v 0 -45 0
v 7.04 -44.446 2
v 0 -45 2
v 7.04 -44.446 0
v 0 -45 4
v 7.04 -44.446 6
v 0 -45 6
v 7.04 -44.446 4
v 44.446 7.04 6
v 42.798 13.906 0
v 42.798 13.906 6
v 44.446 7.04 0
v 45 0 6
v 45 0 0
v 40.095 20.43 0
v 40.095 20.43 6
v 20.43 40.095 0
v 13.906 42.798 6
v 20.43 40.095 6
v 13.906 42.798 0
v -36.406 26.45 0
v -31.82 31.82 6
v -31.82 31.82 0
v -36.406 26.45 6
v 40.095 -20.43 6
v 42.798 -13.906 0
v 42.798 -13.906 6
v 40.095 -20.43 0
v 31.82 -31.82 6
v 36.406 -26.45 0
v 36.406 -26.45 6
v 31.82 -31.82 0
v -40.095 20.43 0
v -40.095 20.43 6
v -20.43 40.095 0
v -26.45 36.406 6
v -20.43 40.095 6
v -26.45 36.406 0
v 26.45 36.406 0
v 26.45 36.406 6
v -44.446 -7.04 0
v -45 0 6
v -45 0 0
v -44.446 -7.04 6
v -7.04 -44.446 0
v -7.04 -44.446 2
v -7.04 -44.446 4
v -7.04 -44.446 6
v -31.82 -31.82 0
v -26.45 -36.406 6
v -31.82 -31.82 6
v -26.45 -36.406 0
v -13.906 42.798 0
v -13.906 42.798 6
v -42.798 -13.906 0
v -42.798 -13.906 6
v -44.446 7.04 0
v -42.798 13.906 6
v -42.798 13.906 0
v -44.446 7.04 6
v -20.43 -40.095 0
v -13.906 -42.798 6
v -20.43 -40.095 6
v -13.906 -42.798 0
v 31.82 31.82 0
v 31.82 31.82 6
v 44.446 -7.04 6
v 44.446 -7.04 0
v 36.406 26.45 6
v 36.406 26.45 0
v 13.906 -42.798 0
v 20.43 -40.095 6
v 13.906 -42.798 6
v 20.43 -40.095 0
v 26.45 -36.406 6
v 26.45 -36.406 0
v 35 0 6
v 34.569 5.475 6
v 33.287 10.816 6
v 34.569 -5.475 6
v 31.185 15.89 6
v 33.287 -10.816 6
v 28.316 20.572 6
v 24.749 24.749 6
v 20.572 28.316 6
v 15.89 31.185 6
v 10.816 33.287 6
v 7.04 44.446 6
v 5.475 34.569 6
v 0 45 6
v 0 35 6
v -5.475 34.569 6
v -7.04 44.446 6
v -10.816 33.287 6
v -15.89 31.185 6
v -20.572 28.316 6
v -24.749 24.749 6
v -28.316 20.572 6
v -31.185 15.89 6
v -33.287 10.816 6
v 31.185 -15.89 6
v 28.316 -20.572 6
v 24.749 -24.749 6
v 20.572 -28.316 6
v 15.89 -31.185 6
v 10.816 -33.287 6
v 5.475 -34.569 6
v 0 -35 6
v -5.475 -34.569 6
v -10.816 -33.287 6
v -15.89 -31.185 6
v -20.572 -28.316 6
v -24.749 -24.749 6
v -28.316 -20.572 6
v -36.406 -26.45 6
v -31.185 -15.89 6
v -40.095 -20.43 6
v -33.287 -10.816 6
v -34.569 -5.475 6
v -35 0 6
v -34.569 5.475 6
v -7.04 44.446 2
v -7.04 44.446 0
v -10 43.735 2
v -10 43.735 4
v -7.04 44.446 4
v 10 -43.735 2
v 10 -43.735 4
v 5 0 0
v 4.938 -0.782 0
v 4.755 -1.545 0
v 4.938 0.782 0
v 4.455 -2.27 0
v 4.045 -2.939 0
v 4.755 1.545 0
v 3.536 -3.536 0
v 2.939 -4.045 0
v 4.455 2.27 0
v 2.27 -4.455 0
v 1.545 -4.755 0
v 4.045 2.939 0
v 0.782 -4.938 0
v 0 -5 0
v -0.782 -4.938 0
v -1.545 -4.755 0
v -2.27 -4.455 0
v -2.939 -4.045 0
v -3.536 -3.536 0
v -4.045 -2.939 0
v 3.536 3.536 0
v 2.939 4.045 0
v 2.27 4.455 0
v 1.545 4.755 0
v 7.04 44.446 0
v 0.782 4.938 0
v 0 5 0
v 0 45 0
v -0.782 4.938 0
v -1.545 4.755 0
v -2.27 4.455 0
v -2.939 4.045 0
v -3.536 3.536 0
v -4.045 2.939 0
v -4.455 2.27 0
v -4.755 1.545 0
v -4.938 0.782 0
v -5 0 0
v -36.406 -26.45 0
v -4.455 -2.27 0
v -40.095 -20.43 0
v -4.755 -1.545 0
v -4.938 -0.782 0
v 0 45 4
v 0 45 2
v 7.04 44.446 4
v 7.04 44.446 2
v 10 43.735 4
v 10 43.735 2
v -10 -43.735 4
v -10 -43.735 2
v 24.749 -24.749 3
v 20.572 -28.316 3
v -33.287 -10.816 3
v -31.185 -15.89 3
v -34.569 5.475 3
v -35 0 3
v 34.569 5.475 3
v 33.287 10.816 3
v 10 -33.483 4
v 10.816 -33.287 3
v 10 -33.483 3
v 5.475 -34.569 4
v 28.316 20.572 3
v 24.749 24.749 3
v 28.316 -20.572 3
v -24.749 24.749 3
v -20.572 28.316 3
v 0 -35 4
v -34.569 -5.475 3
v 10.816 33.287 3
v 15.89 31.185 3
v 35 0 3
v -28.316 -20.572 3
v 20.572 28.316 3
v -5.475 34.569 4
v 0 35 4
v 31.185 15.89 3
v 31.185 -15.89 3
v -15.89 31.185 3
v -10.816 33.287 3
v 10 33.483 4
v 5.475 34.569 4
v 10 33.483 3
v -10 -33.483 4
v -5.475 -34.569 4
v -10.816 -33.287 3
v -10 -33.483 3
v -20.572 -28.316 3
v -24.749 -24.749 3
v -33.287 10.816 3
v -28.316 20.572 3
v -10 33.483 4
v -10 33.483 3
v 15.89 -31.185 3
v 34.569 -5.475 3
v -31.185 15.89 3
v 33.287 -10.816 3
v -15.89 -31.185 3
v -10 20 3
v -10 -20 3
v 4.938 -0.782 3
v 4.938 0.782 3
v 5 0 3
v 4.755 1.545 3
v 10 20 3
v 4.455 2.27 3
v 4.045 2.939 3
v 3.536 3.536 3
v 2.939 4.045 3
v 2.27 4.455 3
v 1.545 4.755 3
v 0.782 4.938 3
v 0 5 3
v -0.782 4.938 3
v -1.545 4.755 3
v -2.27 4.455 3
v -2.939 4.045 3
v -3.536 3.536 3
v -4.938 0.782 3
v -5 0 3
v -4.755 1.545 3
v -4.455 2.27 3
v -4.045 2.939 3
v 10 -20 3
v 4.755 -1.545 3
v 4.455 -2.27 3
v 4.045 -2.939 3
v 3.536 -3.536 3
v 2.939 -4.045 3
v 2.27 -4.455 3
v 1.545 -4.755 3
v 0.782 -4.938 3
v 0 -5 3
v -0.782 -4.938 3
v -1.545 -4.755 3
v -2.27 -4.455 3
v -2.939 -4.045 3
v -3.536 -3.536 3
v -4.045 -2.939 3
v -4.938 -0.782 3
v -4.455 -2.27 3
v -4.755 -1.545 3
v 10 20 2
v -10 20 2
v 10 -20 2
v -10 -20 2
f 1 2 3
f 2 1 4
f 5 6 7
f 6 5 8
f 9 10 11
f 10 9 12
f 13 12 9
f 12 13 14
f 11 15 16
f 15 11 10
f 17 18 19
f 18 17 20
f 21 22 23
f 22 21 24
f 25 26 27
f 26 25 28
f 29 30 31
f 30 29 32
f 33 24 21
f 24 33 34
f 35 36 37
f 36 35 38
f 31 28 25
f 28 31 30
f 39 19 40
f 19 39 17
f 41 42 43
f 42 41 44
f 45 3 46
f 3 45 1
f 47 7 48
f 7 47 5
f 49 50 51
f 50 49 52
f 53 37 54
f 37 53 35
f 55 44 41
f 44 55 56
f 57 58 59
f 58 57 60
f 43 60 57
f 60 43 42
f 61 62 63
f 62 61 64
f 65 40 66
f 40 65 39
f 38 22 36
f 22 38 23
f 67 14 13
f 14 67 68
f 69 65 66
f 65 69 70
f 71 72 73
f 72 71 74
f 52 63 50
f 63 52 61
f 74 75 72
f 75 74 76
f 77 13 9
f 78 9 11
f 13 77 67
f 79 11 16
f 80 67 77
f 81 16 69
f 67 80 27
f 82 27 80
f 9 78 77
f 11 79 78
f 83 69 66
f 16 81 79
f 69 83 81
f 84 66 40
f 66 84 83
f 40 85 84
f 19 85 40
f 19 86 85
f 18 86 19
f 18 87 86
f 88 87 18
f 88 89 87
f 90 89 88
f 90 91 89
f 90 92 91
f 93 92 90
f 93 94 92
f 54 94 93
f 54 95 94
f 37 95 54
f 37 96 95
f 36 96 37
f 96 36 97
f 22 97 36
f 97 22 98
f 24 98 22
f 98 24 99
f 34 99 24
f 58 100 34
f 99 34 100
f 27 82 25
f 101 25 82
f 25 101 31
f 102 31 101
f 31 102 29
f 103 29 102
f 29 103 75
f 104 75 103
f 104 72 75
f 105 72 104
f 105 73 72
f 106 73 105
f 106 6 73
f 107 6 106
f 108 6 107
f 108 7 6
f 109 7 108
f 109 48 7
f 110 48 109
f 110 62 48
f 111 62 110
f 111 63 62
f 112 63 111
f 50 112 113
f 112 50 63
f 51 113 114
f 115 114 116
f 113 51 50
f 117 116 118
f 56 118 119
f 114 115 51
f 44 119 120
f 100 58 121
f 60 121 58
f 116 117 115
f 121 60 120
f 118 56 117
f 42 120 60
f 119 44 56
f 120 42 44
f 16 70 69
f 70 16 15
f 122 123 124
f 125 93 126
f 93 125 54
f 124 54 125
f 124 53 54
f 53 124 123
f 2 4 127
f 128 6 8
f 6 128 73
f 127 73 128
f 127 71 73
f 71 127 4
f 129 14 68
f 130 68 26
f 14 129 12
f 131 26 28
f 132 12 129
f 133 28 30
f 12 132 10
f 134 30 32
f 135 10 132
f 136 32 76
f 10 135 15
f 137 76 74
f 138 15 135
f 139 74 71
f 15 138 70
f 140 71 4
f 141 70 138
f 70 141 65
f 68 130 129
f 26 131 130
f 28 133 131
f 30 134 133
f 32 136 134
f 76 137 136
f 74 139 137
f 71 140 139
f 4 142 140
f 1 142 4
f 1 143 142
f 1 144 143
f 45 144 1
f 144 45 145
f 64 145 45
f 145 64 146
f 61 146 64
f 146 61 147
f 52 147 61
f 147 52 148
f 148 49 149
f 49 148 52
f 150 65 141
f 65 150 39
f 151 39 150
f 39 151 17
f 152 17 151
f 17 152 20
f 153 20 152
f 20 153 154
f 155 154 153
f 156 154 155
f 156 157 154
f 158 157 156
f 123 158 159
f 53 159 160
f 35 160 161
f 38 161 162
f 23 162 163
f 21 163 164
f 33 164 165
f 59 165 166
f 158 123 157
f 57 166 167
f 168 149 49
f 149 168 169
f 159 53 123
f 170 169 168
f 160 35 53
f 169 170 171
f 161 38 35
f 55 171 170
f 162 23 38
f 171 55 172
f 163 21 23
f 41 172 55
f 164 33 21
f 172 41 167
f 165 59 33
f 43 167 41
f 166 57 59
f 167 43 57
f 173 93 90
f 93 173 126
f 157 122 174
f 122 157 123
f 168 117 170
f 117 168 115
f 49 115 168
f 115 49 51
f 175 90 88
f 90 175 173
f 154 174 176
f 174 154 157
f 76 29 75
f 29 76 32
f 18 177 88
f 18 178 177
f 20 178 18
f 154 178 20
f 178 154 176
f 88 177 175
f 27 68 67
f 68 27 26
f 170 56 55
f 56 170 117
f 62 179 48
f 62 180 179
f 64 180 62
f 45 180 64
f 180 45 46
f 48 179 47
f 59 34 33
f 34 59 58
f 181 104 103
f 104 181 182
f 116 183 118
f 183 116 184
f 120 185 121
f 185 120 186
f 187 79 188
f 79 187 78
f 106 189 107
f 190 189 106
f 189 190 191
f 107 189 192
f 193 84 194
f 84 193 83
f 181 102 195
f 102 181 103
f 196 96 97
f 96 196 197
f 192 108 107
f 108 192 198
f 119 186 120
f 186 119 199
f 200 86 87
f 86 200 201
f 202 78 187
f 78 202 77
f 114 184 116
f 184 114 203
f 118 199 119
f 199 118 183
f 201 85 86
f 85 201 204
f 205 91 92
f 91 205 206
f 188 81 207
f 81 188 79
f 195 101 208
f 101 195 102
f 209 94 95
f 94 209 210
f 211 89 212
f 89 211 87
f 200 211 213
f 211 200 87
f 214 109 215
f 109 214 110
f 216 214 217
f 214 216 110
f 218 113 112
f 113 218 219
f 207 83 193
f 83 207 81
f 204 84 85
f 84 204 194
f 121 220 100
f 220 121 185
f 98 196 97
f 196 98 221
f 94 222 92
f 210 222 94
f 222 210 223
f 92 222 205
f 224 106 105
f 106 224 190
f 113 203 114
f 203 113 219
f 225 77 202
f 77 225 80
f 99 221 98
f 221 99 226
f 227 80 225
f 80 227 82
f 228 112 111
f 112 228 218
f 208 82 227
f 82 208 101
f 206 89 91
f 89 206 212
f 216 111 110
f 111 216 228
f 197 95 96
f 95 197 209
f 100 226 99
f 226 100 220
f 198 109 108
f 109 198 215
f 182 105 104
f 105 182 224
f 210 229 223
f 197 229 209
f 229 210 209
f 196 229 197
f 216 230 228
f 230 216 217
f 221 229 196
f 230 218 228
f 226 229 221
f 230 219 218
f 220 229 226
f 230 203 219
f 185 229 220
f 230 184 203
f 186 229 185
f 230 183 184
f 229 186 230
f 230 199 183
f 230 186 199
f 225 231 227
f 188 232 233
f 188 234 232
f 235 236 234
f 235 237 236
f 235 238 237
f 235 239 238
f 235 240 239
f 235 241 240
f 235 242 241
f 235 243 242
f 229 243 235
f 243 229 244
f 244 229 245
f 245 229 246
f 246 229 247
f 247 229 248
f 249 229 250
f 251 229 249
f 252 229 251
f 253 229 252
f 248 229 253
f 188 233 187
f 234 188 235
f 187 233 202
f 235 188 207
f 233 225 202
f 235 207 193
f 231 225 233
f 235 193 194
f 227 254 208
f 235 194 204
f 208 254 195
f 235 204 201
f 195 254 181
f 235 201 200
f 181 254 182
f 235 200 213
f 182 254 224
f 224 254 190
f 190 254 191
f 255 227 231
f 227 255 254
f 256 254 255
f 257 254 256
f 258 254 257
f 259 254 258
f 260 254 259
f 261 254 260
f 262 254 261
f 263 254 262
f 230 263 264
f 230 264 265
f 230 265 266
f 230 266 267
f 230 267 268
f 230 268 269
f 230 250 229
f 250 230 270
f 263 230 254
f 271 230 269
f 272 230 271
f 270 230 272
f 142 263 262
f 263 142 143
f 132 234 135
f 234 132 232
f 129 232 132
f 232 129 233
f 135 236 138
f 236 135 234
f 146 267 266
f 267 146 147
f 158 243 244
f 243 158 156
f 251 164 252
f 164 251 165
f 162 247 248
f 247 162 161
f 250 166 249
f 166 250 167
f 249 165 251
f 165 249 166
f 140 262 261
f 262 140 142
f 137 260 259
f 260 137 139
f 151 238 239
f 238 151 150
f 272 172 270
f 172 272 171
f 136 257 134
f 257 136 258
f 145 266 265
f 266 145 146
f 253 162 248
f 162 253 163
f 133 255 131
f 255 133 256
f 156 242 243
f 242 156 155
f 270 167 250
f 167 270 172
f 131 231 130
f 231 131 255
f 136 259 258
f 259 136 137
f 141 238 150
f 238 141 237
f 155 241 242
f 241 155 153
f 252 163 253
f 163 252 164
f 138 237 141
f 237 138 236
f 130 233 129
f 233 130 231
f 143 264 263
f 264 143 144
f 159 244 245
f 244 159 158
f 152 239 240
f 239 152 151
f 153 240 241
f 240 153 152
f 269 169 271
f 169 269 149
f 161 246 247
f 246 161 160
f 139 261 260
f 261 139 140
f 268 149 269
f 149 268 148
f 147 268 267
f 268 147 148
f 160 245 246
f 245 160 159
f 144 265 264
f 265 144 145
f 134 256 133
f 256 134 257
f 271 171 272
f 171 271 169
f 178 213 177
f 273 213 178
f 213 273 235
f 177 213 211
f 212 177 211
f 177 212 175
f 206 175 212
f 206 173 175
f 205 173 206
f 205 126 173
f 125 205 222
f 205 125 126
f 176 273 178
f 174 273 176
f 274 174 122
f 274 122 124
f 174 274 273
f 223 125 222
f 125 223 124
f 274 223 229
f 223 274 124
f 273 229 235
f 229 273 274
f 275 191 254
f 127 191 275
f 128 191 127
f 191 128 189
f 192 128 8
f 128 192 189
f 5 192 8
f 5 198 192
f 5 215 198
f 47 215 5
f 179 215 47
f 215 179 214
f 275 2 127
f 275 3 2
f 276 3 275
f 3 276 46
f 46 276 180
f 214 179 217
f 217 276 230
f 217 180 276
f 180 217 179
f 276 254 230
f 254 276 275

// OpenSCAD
$fn = 40;
outer_radius = 45;
inner_diameter = 10;
thickness = 4;
blade_length = 60;
blade_width = 20;
blade_thickness = 2;

difference() {
    cylinder(h = thickness + 2, r = outer_radius);
    translate([0,0,thickness -1])
        cylinder(h = 6, r = outer_radius - 10);
    cylinder(h = thickness + 2, d = inner_diameter);
    translate([- (blade_width / 2), blade_length / 3, 2]) cube(size = [blade_width, blade_length, blade_thickness]);
    translate([- (blade_width / 2), - (blade_length + (blade_length / 3)), 2]) cube(size = [blade_width, blade_length, blade_thickness]);
}
